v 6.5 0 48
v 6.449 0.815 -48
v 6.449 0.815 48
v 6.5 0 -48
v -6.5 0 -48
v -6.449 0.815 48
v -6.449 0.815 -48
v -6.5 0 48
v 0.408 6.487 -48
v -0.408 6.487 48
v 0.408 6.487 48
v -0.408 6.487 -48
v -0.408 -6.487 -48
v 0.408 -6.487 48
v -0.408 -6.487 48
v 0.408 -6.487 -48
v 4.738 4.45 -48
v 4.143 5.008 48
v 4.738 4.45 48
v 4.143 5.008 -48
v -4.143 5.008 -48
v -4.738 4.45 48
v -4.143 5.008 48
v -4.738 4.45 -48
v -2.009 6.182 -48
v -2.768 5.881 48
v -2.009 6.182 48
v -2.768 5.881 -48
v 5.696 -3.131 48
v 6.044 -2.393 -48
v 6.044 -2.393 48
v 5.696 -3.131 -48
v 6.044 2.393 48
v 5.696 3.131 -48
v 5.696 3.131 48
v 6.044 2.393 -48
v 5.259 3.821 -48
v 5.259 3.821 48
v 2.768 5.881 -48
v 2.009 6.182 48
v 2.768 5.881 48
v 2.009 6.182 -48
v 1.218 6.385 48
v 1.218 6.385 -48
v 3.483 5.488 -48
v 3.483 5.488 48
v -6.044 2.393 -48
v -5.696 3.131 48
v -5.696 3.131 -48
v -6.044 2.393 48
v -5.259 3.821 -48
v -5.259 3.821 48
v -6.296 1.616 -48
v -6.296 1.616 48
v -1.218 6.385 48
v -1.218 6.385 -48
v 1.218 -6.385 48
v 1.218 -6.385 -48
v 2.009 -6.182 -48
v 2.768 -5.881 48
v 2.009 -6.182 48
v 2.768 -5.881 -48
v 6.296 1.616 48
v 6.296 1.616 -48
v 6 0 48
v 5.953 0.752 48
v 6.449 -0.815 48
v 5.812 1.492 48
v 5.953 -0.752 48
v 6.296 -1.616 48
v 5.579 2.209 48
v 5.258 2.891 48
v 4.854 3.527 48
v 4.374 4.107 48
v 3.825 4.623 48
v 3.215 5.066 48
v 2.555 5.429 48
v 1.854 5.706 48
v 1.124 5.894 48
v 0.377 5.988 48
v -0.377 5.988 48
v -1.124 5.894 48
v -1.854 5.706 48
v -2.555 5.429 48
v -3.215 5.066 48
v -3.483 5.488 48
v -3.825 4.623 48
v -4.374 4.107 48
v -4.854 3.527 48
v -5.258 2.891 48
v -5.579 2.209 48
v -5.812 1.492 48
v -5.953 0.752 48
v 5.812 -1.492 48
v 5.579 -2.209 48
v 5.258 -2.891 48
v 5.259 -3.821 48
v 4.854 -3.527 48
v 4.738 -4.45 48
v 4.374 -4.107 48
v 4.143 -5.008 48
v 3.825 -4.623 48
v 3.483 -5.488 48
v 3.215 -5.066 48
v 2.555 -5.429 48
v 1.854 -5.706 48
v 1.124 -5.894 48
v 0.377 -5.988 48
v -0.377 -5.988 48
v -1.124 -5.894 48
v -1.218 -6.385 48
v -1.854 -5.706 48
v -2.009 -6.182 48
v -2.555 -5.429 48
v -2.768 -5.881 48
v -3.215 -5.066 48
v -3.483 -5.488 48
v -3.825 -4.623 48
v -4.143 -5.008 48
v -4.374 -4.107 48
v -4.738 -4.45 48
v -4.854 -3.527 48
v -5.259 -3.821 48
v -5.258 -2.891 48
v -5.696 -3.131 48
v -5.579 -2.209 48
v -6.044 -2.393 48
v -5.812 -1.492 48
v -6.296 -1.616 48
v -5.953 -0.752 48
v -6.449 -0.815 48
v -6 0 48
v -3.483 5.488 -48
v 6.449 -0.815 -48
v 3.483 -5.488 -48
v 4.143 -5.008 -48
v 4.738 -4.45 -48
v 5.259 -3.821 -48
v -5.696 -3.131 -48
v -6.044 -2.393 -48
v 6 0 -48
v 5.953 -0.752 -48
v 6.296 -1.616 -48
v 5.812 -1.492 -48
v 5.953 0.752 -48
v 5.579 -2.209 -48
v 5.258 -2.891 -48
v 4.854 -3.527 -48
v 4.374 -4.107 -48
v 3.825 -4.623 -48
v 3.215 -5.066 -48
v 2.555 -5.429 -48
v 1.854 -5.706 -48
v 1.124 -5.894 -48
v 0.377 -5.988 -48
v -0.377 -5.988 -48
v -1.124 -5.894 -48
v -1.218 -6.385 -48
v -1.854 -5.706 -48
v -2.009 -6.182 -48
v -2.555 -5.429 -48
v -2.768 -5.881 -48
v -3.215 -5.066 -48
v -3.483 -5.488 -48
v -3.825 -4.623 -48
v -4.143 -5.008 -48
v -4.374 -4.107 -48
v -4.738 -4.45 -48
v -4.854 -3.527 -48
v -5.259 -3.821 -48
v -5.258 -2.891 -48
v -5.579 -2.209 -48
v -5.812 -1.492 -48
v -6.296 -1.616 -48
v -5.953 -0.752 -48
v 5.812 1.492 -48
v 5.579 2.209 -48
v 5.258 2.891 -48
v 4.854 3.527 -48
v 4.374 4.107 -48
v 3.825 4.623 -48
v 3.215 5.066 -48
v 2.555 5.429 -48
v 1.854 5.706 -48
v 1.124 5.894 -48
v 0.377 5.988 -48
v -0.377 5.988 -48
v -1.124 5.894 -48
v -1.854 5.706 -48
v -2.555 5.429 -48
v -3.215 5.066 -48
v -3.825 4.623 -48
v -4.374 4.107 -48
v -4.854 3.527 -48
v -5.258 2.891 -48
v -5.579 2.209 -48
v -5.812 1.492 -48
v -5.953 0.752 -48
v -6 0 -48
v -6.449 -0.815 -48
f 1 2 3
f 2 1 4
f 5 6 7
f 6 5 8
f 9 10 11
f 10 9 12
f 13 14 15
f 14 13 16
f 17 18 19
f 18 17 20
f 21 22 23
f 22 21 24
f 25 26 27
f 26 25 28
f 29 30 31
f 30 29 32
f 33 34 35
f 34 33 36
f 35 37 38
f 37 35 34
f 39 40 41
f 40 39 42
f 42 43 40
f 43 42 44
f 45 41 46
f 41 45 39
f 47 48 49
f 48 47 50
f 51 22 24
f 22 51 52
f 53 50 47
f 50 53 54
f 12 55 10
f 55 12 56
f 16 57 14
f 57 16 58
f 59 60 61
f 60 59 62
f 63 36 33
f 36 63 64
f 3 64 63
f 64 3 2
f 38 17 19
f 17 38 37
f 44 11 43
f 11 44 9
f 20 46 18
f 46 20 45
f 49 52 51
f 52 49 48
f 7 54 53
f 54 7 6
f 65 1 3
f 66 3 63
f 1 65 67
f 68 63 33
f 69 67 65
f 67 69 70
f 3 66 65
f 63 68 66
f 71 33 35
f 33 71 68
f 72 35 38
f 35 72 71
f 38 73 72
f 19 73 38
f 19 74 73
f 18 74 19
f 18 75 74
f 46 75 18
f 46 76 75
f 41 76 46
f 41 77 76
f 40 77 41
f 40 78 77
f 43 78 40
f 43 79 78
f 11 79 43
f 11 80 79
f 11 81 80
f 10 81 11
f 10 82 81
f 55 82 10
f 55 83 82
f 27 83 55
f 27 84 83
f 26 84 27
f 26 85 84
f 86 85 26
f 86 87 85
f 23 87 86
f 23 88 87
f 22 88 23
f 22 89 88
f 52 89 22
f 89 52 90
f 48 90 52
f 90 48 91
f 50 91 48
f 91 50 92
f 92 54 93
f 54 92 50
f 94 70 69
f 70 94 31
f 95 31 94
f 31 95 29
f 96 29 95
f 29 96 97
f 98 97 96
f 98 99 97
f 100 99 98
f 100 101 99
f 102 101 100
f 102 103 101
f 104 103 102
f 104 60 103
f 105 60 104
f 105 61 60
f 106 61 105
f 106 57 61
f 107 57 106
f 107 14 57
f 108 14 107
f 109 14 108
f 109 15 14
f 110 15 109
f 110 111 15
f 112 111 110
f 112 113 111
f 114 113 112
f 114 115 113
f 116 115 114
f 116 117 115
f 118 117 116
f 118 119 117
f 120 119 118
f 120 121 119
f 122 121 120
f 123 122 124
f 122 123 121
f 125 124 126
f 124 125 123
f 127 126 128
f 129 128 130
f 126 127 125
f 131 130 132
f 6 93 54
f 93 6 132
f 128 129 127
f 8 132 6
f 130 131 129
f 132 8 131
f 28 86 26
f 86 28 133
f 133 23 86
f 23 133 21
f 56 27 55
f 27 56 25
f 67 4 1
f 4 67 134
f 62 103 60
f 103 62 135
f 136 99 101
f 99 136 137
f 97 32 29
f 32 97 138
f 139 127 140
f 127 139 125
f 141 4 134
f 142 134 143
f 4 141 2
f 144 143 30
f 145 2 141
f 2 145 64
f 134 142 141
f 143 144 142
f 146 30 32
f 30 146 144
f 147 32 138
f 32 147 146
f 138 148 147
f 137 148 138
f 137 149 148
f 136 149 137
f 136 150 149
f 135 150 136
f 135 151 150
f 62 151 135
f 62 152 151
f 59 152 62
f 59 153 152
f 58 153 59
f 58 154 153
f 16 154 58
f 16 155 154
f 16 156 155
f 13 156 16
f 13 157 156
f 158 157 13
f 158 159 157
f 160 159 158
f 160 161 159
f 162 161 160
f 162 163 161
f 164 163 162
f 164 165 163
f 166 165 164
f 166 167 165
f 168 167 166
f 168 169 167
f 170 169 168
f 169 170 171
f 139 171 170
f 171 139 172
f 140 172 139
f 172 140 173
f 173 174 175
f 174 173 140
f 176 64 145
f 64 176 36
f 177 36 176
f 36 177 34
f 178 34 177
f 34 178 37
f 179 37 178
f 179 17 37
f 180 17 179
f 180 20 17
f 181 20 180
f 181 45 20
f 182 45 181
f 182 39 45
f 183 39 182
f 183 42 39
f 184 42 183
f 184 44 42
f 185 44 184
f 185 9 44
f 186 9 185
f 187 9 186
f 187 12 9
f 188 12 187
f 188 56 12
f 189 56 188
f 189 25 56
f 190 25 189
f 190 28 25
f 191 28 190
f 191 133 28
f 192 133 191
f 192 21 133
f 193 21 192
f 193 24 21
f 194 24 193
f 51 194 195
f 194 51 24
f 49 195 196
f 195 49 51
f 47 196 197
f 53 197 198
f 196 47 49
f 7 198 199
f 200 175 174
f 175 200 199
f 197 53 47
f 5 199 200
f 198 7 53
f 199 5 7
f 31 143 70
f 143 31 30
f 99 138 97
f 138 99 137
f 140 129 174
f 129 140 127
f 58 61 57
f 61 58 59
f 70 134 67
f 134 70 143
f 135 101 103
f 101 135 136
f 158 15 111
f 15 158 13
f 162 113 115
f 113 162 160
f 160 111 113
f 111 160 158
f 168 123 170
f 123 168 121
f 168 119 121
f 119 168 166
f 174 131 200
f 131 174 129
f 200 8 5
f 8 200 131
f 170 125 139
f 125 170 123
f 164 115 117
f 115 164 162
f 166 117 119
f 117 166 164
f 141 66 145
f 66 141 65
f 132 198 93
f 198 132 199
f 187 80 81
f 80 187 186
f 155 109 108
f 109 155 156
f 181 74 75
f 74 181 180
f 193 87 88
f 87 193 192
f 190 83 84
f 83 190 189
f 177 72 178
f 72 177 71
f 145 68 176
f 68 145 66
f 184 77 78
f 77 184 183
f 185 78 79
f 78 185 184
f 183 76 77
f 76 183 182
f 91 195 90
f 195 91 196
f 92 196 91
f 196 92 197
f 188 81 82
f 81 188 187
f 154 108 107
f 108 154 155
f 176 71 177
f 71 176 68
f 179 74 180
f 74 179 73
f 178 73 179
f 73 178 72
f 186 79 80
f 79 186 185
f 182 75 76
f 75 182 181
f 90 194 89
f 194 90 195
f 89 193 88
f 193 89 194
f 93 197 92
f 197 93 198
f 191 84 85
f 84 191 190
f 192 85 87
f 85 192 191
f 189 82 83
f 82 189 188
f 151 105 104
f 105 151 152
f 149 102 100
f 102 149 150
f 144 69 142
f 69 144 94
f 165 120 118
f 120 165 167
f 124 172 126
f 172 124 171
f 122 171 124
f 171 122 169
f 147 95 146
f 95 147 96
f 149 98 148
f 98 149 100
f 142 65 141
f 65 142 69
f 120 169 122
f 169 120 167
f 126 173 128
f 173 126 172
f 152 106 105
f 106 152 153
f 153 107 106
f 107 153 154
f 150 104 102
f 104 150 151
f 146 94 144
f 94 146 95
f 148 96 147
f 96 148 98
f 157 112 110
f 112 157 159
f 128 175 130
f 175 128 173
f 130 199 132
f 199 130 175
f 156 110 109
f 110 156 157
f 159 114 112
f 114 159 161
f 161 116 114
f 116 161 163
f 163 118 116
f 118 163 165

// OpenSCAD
$fn = 50;


difference() {
	union() {
		translate(v = [0, 0, -48.0000000000]) {
			cylinder(h = 96, r = 6.5000000000);
		}
	}
	union() {
		translate(v = [0, 0, -100.0000000000]) {
			cylinder(h = 200, r = 6);
		}
	}
}
